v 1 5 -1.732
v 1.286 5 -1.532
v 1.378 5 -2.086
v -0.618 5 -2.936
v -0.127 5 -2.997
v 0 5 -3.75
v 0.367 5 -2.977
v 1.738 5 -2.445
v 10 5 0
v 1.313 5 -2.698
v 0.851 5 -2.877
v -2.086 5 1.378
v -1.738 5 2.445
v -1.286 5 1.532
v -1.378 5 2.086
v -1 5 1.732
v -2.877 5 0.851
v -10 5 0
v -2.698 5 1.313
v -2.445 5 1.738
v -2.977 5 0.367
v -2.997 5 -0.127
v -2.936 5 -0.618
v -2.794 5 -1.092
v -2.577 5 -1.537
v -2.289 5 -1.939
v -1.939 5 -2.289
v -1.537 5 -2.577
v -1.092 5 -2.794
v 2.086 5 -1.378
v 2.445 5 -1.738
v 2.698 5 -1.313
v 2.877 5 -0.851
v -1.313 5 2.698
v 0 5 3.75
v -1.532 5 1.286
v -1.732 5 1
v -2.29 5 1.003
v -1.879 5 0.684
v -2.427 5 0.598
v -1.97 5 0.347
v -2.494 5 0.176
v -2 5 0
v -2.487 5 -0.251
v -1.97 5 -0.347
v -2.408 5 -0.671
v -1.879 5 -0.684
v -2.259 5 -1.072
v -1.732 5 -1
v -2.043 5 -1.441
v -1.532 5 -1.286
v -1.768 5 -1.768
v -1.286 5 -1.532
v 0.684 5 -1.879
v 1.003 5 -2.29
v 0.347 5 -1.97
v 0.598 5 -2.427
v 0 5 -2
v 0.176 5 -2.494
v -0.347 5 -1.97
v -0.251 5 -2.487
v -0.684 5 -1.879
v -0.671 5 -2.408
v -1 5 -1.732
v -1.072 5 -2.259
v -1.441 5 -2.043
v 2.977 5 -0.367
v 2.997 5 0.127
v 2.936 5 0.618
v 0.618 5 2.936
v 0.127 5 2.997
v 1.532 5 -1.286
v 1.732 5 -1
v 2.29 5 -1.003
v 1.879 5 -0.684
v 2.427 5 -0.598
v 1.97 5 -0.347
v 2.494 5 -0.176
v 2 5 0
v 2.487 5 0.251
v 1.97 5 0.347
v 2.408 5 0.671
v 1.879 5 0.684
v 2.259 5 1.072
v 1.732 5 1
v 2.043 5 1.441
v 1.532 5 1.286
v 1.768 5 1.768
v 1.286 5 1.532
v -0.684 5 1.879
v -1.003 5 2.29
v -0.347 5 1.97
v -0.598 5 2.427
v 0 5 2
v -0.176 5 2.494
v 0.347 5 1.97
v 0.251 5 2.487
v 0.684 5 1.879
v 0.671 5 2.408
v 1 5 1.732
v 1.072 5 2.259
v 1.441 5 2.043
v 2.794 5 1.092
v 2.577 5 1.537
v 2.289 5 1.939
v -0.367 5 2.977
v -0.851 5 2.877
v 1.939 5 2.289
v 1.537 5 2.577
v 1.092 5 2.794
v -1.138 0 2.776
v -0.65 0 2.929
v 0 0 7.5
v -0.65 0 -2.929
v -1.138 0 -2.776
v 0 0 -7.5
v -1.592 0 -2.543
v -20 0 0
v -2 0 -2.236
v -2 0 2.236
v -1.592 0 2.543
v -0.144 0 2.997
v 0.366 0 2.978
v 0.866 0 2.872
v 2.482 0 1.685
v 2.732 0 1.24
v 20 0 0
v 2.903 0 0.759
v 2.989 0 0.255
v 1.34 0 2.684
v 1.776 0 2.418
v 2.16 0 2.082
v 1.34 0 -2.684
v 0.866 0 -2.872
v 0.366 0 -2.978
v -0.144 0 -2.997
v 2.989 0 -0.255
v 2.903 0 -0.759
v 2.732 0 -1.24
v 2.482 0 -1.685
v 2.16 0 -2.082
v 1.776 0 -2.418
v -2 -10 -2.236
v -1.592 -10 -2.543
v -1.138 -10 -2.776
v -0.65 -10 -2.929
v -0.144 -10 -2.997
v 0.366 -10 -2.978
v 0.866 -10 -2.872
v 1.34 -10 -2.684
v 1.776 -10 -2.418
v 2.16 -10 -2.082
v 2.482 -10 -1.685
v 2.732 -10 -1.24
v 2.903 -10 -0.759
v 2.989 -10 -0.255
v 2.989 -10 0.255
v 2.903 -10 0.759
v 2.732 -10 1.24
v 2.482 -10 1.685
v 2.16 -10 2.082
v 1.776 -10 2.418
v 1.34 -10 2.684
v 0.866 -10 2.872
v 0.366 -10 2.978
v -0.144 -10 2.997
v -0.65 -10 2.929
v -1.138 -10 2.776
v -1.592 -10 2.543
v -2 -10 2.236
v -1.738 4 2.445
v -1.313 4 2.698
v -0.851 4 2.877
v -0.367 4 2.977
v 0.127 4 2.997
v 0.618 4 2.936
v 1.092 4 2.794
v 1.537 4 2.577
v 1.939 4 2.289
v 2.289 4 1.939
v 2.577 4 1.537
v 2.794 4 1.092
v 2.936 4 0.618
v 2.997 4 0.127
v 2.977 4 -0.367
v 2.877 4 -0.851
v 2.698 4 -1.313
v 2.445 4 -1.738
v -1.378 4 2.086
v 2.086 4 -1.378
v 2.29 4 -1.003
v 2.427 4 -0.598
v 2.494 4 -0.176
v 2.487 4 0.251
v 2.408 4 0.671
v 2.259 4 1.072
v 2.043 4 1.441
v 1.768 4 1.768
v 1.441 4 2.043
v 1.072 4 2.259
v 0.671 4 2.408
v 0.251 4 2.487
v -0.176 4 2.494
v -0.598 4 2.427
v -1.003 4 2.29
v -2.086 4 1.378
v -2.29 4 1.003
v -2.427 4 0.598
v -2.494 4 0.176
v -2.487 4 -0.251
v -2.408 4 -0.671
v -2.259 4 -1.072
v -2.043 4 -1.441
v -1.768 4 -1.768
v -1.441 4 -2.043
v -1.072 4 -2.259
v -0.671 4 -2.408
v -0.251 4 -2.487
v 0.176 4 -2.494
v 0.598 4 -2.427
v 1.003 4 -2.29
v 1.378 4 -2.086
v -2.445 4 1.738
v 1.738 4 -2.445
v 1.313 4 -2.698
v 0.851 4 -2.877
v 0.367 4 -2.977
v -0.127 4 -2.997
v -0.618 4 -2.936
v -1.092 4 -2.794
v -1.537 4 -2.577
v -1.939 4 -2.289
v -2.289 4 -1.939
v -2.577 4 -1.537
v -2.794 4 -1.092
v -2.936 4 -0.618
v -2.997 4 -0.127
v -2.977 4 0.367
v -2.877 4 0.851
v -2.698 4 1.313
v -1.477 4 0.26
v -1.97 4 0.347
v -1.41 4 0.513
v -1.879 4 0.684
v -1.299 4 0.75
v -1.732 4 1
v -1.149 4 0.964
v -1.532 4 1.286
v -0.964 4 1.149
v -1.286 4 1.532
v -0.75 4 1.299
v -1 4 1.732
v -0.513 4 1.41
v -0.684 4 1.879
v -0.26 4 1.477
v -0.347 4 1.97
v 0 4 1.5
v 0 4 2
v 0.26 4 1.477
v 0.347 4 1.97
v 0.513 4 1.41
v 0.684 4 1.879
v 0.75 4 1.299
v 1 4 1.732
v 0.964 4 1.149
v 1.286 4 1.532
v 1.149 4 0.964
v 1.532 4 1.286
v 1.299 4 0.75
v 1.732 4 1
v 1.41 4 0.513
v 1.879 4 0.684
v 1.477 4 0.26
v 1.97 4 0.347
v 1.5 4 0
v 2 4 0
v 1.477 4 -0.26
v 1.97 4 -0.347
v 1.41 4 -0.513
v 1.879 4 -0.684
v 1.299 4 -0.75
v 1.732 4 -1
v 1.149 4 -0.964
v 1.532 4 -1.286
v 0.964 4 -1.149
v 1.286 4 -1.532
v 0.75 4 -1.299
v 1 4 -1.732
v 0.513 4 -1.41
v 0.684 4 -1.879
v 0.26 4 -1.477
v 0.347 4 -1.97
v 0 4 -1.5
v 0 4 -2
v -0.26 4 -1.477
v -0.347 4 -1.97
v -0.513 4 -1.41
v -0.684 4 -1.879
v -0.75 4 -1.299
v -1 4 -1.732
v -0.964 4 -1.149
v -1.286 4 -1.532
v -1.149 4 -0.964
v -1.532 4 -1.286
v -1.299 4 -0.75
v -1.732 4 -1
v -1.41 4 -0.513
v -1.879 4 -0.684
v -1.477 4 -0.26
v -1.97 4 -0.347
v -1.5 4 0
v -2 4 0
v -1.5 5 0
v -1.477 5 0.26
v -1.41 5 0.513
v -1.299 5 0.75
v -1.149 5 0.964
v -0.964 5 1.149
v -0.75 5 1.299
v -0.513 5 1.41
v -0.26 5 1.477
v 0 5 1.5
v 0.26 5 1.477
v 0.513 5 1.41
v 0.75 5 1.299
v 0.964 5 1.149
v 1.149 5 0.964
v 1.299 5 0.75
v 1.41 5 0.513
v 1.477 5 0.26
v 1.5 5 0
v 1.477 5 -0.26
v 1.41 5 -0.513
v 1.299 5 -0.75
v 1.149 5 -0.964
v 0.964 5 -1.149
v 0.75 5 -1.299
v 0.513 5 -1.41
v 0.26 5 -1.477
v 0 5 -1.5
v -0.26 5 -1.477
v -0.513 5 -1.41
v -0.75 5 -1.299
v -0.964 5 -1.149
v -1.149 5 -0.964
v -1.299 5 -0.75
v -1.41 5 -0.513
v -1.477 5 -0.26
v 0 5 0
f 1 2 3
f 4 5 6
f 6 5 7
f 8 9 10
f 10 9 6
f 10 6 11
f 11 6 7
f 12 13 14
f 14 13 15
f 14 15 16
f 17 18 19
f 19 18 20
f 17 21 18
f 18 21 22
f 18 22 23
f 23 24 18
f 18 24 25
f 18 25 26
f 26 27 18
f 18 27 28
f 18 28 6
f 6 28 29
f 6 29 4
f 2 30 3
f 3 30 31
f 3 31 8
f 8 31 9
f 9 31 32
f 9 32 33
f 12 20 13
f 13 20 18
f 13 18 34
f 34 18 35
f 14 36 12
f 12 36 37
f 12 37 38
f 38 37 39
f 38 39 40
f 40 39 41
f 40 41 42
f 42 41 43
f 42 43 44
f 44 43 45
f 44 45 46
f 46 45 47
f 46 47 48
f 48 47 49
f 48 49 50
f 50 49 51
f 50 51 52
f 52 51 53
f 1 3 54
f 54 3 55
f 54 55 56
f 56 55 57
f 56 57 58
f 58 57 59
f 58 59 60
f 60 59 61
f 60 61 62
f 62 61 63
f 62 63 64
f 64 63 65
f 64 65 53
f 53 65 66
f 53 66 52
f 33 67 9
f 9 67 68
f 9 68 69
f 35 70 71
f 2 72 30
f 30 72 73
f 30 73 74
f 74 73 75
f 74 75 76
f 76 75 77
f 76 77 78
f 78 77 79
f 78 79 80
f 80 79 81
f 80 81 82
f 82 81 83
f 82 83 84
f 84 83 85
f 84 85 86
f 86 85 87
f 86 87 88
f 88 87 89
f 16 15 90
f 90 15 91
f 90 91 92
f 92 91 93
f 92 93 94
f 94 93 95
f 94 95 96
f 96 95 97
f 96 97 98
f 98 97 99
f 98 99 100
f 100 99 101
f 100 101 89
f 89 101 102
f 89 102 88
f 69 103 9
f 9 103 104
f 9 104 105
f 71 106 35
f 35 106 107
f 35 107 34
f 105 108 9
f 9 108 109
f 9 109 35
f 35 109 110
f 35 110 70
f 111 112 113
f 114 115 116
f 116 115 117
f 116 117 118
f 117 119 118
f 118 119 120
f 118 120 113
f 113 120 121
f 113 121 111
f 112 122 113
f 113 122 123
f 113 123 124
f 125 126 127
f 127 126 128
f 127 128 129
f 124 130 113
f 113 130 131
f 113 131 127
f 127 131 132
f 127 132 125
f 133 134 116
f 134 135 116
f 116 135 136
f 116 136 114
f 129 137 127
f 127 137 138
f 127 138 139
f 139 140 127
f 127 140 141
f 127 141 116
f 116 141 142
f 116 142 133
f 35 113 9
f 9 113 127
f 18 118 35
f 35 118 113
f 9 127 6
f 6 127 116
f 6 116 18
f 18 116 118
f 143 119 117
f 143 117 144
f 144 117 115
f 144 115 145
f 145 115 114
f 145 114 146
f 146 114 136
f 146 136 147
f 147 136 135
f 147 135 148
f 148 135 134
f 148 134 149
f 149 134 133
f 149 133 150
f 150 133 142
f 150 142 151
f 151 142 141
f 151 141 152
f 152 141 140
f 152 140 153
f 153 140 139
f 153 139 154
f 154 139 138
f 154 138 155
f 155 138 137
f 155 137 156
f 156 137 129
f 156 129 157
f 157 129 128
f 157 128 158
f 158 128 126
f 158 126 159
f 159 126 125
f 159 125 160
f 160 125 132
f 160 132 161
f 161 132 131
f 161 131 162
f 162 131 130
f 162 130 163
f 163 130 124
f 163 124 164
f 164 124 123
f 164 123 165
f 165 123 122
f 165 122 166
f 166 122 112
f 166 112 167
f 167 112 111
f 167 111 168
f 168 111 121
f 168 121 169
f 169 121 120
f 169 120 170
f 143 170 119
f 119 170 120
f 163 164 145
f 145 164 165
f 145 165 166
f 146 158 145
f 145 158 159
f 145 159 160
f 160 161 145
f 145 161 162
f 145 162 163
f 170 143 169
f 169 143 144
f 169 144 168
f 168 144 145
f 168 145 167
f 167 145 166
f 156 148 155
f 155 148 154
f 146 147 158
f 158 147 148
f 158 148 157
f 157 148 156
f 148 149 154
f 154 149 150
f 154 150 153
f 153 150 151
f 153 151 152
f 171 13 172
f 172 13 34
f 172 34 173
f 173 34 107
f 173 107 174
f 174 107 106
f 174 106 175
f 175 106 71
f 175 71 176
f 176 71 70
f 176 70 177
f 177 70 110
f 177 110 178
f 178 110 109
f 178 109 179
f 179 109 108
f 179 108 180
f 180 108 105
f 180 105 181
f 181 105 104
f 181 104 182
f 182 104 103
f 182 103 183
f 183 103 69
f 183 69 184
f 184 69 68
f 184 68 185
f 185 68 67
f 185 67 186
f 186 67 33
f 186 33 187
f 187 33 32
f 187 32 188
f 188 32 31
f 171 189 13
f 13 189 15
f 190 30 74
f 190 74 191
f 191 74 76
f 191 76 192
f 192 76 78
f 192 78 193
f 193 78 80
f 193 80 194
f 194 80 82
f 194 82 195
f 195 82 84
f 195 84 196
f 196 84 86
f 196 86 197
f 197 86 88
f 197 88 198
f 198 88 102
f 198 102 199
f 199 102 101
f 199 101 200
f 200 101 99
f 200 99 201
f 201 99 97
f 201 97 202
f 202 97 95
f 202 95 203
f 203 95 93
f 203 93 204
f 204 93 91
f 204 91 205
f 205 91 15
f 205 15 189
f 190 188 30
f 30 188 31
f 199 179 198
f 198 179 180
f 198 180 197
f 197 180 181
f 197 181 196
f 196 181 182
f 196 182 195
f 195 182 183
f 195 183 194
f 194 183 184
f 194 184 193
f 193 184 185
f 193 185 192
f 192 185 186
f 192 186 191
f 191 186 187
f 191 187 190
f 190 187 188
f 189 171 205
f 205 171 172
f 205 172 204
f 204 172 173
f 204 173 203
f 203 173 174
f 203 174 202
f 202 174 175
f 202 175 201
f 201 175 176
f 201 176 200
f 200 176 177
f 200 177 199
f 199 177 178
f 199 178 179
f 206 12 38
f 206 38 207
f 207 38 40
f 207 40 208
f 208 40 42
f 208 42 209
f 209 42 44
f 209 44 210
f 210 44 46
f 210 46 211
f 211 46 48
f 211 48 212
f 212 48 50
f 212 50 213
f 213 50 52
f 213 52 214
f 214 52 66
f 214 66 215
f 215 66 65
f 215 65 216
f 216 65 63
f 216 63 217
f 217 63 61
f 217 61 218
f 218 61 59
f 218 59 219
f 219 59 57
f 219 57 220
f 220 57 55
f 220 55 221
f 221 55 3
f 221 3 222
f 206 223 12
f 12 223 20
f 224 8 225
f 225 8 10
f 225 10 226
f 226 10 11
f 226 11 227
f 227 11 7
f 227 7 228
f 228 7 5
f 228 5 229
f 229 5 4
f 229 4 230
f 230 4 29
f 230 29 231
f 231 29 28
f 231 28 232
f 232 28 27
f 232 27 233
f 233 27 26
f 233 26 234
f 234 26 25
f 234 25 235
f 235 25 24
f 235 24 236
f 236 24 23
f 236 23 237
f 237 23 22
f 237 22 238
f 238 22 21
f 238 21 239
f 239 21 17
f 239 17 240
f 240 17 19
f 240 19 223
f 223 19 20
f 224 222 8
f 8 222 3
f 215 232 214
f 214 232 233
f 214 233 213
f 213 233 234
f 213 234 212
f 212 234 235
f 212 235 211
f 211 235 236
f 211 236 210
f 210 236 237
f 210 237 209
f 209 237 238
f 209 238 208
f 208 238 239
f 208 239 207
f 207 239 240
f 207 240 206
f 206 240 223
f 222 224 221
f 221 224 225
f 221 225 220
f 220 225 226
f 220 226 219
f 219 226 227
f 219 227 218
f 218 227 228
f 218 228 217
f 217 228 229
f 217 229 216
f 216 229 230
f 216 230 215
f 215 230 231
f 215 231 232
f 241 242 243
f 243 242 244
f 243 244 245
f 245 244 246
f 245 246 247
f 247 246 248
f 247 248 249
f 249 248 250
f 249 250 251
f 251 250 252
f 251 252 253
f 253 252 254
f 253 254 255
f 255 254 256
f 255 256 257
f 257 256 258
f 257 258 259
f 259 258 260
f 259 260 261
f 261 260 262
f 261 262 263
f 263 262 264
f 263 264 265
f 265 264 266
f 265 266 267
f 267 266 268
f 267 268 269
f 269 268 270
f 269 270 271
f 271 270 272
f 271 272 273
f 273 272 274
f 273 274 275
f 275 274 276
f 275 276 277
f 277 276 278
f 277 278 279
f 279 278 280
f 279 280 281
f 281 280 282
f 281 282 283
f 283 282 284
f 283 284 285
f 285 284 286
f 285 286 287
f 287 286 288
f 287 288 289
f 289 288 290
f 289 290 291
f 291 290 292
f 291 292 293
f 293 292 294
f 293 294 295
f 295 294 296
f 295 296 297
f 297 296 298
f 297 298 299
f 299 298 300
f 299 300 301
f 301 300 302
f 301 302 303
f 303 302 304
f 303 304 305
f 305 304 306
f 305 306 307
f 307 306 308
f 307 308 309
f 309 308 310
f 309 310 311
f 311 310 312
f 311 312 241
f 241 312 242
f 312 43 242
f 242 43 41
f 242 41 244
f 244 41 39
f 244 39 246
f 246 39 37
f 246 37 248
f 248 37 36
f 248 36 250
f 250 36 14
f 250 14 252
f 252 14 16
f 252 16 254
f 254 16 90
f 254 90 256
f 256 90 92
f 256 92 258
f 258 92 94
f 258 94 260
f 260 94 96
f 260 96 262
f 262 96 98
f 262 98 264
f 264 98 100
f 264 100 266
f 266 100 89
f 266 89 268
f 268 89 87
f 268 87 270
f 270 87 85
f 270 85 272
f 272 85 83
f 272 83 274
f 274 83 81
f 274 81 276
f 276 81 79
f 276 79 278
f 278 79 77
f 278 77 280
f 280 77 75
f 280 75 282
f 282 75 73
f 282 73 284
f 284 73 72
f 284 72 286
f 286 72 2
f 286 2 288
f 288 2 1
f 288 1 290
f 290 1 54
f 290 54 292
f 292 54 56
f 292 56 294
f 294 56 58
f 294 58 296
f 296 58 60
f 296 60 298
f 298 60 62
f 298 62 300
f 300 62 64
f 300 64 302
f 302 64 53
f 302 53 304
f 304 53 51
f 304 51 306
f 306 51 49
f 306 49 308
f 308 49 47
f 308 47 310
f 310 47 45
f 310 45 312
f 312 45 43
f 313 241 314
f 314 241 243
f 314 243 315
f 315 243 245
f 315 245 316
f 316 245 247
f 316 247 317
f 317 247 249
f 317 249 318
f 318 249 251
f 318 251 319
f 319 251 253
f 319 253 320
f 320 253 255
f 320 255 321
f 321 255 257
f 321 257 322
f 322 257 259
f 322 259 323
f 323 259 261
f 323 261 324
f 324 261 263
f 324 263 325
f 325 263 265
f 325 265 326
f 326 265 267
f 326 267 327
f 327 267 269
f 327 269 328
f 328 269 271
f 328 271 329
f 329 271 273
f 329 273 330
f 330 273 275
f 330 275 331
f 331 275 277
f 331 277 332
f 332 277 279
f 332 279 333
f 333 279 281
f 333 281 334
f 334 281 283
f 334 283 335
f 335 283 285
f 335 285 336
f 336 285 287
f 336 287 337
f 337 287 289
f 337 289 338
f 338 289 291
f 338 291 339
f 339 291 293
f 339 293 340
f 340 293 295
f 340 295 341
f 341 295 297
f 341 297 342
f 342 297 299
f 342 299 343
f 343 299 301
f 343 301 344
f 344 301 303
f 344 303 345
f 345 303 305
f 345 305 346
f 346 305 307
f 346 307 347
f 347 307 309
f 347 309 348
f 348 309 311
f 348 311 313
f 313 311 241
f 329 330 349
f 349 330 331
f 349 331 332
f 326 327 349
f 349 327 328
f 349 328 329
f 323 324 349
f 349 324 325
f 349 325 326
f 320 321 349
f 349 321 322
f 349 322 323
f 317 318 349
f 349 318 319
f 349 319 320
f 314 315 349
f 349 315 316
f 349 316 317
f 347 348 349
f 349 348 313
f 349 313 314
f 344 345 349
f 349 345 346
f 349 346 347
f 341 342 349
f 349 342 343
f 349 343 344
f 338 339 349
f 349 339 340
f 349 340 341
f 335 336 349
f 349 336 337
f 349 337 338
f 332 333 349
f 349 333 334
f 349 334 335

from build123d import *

# Parameters (mm, degrees)
BOSS_EXTRUDE1_DEPTH = 10
CUT_EXTRUDE1_DEPTH  = 1
SKETCH7_R           = 2
SKETCH7_R_2         = 1.5
CUT_EXTRUDE2_DEPTH  = 1


with BuildPart() as part:
    # Sketch1 → Loft1 section 0
    with BuildSketch(Plane(origin=(0, 0, 0), x_dir=(1, 0, 0), z_dir=(0, 1, 0))):
        with BuildLine():
            Line((-20, 0), (0, 7.5))
            Line((0, 7.5), (20, 0))
            Line((20, 0), (0, -7.5))
            Line((0, -7.5), (-20, 0))
        make_face()
    # Sketch3 → Loft1 section 1
    with BuildSketch(Plane(origin=(0, 5, 0), x_dir=(-1, 0, 0), z_dir=(0, -1, 0))):
        with BuildLine():
            Line((0, 3.75), (-10, 0))
            Line((-10, 0), (0, -3.75))
            Line((0, -3.75), (10, 0))
            Line((10, 0), (0, 3.75))
        make_face()
    loft()

    # Sketch5 → Boss-Extrude1 (add)
    with BuildSketch(Plane(origin=(0, 0, 0), x_dir=(1, 0, 0), z_dir=(0, 1, 0))):
        with BuildLine():
            Line((-2, -2.236067977), (-2, 2.236067977))
            ThreePointArc((-2, 2.236067977), (3, 0), (-2, -2.236067977))
        make_face()
    extrude(amount=-BOSS_EXTRUDE1_DEPTH)

    # Sketch6 → Cut-Extrude1 (cut)
    with BuildSketch(Plane(origin=(0, 5, 0), x_dir=(-1, 0, 0), z_dir=(0, -1, 0))):
        with BuildLine():
            Line((-1.738096676, 2.445203457), (-1.378497417, 2.085604198))
            ThreePointArc((-1.378497417, 2.085604198), (1.767766953, 1.767766953), (2.085604198, -1.378497417))
            Line((2.085604198, -1.378497417), (2.445203457, -1.738096676))
            ThreePointArc((2.445203457, -1.738096676), (2.121320344, 2.121320344), (-1.738096676, 2.445203457))
        make_face()
        with BuildLine():
            Line((-2.445203457, 1.738096676), (-2.085604198, 1.378497417))
            ThreePointArc((-2.085604198, 1.378497417), (-1.767766953, -1.767766953), (1.378497417, -2.085604198))
            Line((1.378497417, -2.085604198), (1.738096676, -2.445203457))
            ThreePointArc((1.738096676, -2.445203457), (-2.121320344, -2.121320344), (-2.445203457, 1.738096676))
        make_face()
    extrude(amount=CUT_EXTRUDE1_DEPTH, mode=Mode.SUBTRACT)

    # Sketch7 → Cut-Extrude2 (cut)
    with BuildSketch(Plane(origin=(0, 5, 0), x_dir=(-1, 0, 0), z_dir=(0, -1, 0))):
        with Locations(Location((0, 0, 0), (0, 0, 180))):
            Circle(SKETCH7_R)
        with Locations(Location((0, 0, 0), (0, 0, 180))):
            Circle(SKETCH7_R_2, mode=Mode.SUBTRACT)
    extrude(amount=CUT_EXTRUDE2_DEPTH, mode=Mode.SUBTRACT)


solid = part.part
